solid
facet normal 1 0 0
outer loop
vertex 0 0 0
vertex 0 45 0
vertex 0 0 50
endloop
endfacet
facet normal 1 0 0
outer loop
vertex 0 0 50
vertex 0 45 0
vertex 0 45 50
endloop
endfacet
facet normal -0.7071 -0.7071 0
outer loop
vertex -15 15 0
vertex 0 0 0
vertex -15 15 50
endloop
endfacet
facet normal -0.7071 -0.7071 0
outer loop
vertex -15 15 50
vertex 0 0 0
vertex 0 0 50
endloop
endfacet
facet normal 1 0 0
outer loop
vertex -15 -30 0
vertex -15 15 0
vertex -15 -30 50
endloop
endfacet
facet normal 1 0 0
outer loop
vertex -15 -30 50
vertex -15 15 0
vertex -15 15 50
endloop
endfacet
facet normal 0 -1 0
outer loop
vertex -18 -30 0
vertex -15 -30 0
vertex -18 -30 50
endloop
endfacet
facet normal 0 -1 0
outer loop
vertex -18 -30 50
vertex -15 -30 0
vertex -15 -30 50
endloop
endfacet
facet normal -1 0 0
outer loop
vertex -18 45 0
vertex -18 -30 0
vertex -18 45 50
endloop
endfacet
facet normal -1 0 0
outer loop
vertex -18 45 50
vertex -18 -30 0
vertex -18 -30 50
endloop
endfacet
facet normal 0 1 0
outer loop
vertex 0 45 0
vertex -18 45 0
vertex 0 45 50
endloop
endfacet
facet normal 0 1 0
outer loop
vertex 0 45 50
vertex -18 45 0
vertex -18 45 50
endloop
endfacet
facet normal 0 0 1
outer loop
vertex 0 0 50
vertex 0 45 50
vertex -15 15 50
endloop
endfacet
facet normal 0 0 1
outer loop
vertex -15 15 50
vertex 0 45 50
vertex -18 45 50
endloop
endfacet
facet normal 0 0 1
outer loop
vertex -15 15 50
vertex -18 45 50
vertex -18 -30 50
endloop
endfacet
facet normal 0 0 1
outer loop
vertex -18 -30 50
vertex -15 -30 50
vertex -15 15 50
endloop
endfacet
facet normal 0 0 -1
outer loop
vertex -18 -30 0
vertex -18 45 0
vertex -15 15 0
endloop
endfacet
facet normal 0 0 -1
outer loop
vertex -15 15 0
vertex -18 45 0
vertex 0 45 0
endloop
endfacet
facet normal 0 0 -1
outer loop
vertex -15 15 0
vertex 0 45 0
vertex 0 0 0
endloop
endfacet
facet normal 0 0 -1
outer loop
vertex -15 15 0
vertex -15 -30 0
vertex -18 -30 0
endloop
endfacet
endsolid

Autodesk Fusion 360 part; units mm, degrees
sketch "Sketch1" plane through (0, 0, 0) normal (0, 0, 1) x (1, 0, 0) in component "generic_holder"
  line L0 (0, 0) -> (-15, 15)
  line L1 (-15, 15) -> (-15, 45)
  line L2 (-15, 45) -> (0, 45)
  line L3 (0, 45) -> (0, 0)
  line L4 (-15, 45) -> (-18, 45)
  line L5 (-18, 45) -> (-18, -30)
  line L6 (-18, -30) -> (-15, -30)
  line L7 (-15, -30) -> (-15, 45)
  dimension "d2" = 15
  dimension "d3" = 30
  dimension "d4" = 75
  dimension "d5" = 3
  dimension "d9" = 45
extrude "Extrude1" add sketch "Sketch1" along normal blind 50 in component "generic_holder"
component "generic_holder" placed x (1, 0, 0) y (0, 1, 0) z (0, 0, 1) at (0, 0, 0)
equation "d2 = cleat_thickness"
equation "d3 = cleat_short_hight"
equation "d4 = front_plate_hight"
equation "d5 = cleat_front_plate_thickness"
equation "cleat_thickness = 15 mm" comment "Cleat thickness"
equation "cleat_long_hight = 45 mm" comment "Cleat long side hight"
equation "cleat_short_hight = 30 mm" comment "Cleat short side hight"
equation "d9 = cleat_long_hight"
equation "cleat_front_plate_thickness = 3 mm" comment "Front plate thickness"
equation "front_plate_hight = 75 mm" comment "Front plate ight"
equation "cleat_width = 50 mm" comment "Cleat width"
equation "d13 = cleat_width"
